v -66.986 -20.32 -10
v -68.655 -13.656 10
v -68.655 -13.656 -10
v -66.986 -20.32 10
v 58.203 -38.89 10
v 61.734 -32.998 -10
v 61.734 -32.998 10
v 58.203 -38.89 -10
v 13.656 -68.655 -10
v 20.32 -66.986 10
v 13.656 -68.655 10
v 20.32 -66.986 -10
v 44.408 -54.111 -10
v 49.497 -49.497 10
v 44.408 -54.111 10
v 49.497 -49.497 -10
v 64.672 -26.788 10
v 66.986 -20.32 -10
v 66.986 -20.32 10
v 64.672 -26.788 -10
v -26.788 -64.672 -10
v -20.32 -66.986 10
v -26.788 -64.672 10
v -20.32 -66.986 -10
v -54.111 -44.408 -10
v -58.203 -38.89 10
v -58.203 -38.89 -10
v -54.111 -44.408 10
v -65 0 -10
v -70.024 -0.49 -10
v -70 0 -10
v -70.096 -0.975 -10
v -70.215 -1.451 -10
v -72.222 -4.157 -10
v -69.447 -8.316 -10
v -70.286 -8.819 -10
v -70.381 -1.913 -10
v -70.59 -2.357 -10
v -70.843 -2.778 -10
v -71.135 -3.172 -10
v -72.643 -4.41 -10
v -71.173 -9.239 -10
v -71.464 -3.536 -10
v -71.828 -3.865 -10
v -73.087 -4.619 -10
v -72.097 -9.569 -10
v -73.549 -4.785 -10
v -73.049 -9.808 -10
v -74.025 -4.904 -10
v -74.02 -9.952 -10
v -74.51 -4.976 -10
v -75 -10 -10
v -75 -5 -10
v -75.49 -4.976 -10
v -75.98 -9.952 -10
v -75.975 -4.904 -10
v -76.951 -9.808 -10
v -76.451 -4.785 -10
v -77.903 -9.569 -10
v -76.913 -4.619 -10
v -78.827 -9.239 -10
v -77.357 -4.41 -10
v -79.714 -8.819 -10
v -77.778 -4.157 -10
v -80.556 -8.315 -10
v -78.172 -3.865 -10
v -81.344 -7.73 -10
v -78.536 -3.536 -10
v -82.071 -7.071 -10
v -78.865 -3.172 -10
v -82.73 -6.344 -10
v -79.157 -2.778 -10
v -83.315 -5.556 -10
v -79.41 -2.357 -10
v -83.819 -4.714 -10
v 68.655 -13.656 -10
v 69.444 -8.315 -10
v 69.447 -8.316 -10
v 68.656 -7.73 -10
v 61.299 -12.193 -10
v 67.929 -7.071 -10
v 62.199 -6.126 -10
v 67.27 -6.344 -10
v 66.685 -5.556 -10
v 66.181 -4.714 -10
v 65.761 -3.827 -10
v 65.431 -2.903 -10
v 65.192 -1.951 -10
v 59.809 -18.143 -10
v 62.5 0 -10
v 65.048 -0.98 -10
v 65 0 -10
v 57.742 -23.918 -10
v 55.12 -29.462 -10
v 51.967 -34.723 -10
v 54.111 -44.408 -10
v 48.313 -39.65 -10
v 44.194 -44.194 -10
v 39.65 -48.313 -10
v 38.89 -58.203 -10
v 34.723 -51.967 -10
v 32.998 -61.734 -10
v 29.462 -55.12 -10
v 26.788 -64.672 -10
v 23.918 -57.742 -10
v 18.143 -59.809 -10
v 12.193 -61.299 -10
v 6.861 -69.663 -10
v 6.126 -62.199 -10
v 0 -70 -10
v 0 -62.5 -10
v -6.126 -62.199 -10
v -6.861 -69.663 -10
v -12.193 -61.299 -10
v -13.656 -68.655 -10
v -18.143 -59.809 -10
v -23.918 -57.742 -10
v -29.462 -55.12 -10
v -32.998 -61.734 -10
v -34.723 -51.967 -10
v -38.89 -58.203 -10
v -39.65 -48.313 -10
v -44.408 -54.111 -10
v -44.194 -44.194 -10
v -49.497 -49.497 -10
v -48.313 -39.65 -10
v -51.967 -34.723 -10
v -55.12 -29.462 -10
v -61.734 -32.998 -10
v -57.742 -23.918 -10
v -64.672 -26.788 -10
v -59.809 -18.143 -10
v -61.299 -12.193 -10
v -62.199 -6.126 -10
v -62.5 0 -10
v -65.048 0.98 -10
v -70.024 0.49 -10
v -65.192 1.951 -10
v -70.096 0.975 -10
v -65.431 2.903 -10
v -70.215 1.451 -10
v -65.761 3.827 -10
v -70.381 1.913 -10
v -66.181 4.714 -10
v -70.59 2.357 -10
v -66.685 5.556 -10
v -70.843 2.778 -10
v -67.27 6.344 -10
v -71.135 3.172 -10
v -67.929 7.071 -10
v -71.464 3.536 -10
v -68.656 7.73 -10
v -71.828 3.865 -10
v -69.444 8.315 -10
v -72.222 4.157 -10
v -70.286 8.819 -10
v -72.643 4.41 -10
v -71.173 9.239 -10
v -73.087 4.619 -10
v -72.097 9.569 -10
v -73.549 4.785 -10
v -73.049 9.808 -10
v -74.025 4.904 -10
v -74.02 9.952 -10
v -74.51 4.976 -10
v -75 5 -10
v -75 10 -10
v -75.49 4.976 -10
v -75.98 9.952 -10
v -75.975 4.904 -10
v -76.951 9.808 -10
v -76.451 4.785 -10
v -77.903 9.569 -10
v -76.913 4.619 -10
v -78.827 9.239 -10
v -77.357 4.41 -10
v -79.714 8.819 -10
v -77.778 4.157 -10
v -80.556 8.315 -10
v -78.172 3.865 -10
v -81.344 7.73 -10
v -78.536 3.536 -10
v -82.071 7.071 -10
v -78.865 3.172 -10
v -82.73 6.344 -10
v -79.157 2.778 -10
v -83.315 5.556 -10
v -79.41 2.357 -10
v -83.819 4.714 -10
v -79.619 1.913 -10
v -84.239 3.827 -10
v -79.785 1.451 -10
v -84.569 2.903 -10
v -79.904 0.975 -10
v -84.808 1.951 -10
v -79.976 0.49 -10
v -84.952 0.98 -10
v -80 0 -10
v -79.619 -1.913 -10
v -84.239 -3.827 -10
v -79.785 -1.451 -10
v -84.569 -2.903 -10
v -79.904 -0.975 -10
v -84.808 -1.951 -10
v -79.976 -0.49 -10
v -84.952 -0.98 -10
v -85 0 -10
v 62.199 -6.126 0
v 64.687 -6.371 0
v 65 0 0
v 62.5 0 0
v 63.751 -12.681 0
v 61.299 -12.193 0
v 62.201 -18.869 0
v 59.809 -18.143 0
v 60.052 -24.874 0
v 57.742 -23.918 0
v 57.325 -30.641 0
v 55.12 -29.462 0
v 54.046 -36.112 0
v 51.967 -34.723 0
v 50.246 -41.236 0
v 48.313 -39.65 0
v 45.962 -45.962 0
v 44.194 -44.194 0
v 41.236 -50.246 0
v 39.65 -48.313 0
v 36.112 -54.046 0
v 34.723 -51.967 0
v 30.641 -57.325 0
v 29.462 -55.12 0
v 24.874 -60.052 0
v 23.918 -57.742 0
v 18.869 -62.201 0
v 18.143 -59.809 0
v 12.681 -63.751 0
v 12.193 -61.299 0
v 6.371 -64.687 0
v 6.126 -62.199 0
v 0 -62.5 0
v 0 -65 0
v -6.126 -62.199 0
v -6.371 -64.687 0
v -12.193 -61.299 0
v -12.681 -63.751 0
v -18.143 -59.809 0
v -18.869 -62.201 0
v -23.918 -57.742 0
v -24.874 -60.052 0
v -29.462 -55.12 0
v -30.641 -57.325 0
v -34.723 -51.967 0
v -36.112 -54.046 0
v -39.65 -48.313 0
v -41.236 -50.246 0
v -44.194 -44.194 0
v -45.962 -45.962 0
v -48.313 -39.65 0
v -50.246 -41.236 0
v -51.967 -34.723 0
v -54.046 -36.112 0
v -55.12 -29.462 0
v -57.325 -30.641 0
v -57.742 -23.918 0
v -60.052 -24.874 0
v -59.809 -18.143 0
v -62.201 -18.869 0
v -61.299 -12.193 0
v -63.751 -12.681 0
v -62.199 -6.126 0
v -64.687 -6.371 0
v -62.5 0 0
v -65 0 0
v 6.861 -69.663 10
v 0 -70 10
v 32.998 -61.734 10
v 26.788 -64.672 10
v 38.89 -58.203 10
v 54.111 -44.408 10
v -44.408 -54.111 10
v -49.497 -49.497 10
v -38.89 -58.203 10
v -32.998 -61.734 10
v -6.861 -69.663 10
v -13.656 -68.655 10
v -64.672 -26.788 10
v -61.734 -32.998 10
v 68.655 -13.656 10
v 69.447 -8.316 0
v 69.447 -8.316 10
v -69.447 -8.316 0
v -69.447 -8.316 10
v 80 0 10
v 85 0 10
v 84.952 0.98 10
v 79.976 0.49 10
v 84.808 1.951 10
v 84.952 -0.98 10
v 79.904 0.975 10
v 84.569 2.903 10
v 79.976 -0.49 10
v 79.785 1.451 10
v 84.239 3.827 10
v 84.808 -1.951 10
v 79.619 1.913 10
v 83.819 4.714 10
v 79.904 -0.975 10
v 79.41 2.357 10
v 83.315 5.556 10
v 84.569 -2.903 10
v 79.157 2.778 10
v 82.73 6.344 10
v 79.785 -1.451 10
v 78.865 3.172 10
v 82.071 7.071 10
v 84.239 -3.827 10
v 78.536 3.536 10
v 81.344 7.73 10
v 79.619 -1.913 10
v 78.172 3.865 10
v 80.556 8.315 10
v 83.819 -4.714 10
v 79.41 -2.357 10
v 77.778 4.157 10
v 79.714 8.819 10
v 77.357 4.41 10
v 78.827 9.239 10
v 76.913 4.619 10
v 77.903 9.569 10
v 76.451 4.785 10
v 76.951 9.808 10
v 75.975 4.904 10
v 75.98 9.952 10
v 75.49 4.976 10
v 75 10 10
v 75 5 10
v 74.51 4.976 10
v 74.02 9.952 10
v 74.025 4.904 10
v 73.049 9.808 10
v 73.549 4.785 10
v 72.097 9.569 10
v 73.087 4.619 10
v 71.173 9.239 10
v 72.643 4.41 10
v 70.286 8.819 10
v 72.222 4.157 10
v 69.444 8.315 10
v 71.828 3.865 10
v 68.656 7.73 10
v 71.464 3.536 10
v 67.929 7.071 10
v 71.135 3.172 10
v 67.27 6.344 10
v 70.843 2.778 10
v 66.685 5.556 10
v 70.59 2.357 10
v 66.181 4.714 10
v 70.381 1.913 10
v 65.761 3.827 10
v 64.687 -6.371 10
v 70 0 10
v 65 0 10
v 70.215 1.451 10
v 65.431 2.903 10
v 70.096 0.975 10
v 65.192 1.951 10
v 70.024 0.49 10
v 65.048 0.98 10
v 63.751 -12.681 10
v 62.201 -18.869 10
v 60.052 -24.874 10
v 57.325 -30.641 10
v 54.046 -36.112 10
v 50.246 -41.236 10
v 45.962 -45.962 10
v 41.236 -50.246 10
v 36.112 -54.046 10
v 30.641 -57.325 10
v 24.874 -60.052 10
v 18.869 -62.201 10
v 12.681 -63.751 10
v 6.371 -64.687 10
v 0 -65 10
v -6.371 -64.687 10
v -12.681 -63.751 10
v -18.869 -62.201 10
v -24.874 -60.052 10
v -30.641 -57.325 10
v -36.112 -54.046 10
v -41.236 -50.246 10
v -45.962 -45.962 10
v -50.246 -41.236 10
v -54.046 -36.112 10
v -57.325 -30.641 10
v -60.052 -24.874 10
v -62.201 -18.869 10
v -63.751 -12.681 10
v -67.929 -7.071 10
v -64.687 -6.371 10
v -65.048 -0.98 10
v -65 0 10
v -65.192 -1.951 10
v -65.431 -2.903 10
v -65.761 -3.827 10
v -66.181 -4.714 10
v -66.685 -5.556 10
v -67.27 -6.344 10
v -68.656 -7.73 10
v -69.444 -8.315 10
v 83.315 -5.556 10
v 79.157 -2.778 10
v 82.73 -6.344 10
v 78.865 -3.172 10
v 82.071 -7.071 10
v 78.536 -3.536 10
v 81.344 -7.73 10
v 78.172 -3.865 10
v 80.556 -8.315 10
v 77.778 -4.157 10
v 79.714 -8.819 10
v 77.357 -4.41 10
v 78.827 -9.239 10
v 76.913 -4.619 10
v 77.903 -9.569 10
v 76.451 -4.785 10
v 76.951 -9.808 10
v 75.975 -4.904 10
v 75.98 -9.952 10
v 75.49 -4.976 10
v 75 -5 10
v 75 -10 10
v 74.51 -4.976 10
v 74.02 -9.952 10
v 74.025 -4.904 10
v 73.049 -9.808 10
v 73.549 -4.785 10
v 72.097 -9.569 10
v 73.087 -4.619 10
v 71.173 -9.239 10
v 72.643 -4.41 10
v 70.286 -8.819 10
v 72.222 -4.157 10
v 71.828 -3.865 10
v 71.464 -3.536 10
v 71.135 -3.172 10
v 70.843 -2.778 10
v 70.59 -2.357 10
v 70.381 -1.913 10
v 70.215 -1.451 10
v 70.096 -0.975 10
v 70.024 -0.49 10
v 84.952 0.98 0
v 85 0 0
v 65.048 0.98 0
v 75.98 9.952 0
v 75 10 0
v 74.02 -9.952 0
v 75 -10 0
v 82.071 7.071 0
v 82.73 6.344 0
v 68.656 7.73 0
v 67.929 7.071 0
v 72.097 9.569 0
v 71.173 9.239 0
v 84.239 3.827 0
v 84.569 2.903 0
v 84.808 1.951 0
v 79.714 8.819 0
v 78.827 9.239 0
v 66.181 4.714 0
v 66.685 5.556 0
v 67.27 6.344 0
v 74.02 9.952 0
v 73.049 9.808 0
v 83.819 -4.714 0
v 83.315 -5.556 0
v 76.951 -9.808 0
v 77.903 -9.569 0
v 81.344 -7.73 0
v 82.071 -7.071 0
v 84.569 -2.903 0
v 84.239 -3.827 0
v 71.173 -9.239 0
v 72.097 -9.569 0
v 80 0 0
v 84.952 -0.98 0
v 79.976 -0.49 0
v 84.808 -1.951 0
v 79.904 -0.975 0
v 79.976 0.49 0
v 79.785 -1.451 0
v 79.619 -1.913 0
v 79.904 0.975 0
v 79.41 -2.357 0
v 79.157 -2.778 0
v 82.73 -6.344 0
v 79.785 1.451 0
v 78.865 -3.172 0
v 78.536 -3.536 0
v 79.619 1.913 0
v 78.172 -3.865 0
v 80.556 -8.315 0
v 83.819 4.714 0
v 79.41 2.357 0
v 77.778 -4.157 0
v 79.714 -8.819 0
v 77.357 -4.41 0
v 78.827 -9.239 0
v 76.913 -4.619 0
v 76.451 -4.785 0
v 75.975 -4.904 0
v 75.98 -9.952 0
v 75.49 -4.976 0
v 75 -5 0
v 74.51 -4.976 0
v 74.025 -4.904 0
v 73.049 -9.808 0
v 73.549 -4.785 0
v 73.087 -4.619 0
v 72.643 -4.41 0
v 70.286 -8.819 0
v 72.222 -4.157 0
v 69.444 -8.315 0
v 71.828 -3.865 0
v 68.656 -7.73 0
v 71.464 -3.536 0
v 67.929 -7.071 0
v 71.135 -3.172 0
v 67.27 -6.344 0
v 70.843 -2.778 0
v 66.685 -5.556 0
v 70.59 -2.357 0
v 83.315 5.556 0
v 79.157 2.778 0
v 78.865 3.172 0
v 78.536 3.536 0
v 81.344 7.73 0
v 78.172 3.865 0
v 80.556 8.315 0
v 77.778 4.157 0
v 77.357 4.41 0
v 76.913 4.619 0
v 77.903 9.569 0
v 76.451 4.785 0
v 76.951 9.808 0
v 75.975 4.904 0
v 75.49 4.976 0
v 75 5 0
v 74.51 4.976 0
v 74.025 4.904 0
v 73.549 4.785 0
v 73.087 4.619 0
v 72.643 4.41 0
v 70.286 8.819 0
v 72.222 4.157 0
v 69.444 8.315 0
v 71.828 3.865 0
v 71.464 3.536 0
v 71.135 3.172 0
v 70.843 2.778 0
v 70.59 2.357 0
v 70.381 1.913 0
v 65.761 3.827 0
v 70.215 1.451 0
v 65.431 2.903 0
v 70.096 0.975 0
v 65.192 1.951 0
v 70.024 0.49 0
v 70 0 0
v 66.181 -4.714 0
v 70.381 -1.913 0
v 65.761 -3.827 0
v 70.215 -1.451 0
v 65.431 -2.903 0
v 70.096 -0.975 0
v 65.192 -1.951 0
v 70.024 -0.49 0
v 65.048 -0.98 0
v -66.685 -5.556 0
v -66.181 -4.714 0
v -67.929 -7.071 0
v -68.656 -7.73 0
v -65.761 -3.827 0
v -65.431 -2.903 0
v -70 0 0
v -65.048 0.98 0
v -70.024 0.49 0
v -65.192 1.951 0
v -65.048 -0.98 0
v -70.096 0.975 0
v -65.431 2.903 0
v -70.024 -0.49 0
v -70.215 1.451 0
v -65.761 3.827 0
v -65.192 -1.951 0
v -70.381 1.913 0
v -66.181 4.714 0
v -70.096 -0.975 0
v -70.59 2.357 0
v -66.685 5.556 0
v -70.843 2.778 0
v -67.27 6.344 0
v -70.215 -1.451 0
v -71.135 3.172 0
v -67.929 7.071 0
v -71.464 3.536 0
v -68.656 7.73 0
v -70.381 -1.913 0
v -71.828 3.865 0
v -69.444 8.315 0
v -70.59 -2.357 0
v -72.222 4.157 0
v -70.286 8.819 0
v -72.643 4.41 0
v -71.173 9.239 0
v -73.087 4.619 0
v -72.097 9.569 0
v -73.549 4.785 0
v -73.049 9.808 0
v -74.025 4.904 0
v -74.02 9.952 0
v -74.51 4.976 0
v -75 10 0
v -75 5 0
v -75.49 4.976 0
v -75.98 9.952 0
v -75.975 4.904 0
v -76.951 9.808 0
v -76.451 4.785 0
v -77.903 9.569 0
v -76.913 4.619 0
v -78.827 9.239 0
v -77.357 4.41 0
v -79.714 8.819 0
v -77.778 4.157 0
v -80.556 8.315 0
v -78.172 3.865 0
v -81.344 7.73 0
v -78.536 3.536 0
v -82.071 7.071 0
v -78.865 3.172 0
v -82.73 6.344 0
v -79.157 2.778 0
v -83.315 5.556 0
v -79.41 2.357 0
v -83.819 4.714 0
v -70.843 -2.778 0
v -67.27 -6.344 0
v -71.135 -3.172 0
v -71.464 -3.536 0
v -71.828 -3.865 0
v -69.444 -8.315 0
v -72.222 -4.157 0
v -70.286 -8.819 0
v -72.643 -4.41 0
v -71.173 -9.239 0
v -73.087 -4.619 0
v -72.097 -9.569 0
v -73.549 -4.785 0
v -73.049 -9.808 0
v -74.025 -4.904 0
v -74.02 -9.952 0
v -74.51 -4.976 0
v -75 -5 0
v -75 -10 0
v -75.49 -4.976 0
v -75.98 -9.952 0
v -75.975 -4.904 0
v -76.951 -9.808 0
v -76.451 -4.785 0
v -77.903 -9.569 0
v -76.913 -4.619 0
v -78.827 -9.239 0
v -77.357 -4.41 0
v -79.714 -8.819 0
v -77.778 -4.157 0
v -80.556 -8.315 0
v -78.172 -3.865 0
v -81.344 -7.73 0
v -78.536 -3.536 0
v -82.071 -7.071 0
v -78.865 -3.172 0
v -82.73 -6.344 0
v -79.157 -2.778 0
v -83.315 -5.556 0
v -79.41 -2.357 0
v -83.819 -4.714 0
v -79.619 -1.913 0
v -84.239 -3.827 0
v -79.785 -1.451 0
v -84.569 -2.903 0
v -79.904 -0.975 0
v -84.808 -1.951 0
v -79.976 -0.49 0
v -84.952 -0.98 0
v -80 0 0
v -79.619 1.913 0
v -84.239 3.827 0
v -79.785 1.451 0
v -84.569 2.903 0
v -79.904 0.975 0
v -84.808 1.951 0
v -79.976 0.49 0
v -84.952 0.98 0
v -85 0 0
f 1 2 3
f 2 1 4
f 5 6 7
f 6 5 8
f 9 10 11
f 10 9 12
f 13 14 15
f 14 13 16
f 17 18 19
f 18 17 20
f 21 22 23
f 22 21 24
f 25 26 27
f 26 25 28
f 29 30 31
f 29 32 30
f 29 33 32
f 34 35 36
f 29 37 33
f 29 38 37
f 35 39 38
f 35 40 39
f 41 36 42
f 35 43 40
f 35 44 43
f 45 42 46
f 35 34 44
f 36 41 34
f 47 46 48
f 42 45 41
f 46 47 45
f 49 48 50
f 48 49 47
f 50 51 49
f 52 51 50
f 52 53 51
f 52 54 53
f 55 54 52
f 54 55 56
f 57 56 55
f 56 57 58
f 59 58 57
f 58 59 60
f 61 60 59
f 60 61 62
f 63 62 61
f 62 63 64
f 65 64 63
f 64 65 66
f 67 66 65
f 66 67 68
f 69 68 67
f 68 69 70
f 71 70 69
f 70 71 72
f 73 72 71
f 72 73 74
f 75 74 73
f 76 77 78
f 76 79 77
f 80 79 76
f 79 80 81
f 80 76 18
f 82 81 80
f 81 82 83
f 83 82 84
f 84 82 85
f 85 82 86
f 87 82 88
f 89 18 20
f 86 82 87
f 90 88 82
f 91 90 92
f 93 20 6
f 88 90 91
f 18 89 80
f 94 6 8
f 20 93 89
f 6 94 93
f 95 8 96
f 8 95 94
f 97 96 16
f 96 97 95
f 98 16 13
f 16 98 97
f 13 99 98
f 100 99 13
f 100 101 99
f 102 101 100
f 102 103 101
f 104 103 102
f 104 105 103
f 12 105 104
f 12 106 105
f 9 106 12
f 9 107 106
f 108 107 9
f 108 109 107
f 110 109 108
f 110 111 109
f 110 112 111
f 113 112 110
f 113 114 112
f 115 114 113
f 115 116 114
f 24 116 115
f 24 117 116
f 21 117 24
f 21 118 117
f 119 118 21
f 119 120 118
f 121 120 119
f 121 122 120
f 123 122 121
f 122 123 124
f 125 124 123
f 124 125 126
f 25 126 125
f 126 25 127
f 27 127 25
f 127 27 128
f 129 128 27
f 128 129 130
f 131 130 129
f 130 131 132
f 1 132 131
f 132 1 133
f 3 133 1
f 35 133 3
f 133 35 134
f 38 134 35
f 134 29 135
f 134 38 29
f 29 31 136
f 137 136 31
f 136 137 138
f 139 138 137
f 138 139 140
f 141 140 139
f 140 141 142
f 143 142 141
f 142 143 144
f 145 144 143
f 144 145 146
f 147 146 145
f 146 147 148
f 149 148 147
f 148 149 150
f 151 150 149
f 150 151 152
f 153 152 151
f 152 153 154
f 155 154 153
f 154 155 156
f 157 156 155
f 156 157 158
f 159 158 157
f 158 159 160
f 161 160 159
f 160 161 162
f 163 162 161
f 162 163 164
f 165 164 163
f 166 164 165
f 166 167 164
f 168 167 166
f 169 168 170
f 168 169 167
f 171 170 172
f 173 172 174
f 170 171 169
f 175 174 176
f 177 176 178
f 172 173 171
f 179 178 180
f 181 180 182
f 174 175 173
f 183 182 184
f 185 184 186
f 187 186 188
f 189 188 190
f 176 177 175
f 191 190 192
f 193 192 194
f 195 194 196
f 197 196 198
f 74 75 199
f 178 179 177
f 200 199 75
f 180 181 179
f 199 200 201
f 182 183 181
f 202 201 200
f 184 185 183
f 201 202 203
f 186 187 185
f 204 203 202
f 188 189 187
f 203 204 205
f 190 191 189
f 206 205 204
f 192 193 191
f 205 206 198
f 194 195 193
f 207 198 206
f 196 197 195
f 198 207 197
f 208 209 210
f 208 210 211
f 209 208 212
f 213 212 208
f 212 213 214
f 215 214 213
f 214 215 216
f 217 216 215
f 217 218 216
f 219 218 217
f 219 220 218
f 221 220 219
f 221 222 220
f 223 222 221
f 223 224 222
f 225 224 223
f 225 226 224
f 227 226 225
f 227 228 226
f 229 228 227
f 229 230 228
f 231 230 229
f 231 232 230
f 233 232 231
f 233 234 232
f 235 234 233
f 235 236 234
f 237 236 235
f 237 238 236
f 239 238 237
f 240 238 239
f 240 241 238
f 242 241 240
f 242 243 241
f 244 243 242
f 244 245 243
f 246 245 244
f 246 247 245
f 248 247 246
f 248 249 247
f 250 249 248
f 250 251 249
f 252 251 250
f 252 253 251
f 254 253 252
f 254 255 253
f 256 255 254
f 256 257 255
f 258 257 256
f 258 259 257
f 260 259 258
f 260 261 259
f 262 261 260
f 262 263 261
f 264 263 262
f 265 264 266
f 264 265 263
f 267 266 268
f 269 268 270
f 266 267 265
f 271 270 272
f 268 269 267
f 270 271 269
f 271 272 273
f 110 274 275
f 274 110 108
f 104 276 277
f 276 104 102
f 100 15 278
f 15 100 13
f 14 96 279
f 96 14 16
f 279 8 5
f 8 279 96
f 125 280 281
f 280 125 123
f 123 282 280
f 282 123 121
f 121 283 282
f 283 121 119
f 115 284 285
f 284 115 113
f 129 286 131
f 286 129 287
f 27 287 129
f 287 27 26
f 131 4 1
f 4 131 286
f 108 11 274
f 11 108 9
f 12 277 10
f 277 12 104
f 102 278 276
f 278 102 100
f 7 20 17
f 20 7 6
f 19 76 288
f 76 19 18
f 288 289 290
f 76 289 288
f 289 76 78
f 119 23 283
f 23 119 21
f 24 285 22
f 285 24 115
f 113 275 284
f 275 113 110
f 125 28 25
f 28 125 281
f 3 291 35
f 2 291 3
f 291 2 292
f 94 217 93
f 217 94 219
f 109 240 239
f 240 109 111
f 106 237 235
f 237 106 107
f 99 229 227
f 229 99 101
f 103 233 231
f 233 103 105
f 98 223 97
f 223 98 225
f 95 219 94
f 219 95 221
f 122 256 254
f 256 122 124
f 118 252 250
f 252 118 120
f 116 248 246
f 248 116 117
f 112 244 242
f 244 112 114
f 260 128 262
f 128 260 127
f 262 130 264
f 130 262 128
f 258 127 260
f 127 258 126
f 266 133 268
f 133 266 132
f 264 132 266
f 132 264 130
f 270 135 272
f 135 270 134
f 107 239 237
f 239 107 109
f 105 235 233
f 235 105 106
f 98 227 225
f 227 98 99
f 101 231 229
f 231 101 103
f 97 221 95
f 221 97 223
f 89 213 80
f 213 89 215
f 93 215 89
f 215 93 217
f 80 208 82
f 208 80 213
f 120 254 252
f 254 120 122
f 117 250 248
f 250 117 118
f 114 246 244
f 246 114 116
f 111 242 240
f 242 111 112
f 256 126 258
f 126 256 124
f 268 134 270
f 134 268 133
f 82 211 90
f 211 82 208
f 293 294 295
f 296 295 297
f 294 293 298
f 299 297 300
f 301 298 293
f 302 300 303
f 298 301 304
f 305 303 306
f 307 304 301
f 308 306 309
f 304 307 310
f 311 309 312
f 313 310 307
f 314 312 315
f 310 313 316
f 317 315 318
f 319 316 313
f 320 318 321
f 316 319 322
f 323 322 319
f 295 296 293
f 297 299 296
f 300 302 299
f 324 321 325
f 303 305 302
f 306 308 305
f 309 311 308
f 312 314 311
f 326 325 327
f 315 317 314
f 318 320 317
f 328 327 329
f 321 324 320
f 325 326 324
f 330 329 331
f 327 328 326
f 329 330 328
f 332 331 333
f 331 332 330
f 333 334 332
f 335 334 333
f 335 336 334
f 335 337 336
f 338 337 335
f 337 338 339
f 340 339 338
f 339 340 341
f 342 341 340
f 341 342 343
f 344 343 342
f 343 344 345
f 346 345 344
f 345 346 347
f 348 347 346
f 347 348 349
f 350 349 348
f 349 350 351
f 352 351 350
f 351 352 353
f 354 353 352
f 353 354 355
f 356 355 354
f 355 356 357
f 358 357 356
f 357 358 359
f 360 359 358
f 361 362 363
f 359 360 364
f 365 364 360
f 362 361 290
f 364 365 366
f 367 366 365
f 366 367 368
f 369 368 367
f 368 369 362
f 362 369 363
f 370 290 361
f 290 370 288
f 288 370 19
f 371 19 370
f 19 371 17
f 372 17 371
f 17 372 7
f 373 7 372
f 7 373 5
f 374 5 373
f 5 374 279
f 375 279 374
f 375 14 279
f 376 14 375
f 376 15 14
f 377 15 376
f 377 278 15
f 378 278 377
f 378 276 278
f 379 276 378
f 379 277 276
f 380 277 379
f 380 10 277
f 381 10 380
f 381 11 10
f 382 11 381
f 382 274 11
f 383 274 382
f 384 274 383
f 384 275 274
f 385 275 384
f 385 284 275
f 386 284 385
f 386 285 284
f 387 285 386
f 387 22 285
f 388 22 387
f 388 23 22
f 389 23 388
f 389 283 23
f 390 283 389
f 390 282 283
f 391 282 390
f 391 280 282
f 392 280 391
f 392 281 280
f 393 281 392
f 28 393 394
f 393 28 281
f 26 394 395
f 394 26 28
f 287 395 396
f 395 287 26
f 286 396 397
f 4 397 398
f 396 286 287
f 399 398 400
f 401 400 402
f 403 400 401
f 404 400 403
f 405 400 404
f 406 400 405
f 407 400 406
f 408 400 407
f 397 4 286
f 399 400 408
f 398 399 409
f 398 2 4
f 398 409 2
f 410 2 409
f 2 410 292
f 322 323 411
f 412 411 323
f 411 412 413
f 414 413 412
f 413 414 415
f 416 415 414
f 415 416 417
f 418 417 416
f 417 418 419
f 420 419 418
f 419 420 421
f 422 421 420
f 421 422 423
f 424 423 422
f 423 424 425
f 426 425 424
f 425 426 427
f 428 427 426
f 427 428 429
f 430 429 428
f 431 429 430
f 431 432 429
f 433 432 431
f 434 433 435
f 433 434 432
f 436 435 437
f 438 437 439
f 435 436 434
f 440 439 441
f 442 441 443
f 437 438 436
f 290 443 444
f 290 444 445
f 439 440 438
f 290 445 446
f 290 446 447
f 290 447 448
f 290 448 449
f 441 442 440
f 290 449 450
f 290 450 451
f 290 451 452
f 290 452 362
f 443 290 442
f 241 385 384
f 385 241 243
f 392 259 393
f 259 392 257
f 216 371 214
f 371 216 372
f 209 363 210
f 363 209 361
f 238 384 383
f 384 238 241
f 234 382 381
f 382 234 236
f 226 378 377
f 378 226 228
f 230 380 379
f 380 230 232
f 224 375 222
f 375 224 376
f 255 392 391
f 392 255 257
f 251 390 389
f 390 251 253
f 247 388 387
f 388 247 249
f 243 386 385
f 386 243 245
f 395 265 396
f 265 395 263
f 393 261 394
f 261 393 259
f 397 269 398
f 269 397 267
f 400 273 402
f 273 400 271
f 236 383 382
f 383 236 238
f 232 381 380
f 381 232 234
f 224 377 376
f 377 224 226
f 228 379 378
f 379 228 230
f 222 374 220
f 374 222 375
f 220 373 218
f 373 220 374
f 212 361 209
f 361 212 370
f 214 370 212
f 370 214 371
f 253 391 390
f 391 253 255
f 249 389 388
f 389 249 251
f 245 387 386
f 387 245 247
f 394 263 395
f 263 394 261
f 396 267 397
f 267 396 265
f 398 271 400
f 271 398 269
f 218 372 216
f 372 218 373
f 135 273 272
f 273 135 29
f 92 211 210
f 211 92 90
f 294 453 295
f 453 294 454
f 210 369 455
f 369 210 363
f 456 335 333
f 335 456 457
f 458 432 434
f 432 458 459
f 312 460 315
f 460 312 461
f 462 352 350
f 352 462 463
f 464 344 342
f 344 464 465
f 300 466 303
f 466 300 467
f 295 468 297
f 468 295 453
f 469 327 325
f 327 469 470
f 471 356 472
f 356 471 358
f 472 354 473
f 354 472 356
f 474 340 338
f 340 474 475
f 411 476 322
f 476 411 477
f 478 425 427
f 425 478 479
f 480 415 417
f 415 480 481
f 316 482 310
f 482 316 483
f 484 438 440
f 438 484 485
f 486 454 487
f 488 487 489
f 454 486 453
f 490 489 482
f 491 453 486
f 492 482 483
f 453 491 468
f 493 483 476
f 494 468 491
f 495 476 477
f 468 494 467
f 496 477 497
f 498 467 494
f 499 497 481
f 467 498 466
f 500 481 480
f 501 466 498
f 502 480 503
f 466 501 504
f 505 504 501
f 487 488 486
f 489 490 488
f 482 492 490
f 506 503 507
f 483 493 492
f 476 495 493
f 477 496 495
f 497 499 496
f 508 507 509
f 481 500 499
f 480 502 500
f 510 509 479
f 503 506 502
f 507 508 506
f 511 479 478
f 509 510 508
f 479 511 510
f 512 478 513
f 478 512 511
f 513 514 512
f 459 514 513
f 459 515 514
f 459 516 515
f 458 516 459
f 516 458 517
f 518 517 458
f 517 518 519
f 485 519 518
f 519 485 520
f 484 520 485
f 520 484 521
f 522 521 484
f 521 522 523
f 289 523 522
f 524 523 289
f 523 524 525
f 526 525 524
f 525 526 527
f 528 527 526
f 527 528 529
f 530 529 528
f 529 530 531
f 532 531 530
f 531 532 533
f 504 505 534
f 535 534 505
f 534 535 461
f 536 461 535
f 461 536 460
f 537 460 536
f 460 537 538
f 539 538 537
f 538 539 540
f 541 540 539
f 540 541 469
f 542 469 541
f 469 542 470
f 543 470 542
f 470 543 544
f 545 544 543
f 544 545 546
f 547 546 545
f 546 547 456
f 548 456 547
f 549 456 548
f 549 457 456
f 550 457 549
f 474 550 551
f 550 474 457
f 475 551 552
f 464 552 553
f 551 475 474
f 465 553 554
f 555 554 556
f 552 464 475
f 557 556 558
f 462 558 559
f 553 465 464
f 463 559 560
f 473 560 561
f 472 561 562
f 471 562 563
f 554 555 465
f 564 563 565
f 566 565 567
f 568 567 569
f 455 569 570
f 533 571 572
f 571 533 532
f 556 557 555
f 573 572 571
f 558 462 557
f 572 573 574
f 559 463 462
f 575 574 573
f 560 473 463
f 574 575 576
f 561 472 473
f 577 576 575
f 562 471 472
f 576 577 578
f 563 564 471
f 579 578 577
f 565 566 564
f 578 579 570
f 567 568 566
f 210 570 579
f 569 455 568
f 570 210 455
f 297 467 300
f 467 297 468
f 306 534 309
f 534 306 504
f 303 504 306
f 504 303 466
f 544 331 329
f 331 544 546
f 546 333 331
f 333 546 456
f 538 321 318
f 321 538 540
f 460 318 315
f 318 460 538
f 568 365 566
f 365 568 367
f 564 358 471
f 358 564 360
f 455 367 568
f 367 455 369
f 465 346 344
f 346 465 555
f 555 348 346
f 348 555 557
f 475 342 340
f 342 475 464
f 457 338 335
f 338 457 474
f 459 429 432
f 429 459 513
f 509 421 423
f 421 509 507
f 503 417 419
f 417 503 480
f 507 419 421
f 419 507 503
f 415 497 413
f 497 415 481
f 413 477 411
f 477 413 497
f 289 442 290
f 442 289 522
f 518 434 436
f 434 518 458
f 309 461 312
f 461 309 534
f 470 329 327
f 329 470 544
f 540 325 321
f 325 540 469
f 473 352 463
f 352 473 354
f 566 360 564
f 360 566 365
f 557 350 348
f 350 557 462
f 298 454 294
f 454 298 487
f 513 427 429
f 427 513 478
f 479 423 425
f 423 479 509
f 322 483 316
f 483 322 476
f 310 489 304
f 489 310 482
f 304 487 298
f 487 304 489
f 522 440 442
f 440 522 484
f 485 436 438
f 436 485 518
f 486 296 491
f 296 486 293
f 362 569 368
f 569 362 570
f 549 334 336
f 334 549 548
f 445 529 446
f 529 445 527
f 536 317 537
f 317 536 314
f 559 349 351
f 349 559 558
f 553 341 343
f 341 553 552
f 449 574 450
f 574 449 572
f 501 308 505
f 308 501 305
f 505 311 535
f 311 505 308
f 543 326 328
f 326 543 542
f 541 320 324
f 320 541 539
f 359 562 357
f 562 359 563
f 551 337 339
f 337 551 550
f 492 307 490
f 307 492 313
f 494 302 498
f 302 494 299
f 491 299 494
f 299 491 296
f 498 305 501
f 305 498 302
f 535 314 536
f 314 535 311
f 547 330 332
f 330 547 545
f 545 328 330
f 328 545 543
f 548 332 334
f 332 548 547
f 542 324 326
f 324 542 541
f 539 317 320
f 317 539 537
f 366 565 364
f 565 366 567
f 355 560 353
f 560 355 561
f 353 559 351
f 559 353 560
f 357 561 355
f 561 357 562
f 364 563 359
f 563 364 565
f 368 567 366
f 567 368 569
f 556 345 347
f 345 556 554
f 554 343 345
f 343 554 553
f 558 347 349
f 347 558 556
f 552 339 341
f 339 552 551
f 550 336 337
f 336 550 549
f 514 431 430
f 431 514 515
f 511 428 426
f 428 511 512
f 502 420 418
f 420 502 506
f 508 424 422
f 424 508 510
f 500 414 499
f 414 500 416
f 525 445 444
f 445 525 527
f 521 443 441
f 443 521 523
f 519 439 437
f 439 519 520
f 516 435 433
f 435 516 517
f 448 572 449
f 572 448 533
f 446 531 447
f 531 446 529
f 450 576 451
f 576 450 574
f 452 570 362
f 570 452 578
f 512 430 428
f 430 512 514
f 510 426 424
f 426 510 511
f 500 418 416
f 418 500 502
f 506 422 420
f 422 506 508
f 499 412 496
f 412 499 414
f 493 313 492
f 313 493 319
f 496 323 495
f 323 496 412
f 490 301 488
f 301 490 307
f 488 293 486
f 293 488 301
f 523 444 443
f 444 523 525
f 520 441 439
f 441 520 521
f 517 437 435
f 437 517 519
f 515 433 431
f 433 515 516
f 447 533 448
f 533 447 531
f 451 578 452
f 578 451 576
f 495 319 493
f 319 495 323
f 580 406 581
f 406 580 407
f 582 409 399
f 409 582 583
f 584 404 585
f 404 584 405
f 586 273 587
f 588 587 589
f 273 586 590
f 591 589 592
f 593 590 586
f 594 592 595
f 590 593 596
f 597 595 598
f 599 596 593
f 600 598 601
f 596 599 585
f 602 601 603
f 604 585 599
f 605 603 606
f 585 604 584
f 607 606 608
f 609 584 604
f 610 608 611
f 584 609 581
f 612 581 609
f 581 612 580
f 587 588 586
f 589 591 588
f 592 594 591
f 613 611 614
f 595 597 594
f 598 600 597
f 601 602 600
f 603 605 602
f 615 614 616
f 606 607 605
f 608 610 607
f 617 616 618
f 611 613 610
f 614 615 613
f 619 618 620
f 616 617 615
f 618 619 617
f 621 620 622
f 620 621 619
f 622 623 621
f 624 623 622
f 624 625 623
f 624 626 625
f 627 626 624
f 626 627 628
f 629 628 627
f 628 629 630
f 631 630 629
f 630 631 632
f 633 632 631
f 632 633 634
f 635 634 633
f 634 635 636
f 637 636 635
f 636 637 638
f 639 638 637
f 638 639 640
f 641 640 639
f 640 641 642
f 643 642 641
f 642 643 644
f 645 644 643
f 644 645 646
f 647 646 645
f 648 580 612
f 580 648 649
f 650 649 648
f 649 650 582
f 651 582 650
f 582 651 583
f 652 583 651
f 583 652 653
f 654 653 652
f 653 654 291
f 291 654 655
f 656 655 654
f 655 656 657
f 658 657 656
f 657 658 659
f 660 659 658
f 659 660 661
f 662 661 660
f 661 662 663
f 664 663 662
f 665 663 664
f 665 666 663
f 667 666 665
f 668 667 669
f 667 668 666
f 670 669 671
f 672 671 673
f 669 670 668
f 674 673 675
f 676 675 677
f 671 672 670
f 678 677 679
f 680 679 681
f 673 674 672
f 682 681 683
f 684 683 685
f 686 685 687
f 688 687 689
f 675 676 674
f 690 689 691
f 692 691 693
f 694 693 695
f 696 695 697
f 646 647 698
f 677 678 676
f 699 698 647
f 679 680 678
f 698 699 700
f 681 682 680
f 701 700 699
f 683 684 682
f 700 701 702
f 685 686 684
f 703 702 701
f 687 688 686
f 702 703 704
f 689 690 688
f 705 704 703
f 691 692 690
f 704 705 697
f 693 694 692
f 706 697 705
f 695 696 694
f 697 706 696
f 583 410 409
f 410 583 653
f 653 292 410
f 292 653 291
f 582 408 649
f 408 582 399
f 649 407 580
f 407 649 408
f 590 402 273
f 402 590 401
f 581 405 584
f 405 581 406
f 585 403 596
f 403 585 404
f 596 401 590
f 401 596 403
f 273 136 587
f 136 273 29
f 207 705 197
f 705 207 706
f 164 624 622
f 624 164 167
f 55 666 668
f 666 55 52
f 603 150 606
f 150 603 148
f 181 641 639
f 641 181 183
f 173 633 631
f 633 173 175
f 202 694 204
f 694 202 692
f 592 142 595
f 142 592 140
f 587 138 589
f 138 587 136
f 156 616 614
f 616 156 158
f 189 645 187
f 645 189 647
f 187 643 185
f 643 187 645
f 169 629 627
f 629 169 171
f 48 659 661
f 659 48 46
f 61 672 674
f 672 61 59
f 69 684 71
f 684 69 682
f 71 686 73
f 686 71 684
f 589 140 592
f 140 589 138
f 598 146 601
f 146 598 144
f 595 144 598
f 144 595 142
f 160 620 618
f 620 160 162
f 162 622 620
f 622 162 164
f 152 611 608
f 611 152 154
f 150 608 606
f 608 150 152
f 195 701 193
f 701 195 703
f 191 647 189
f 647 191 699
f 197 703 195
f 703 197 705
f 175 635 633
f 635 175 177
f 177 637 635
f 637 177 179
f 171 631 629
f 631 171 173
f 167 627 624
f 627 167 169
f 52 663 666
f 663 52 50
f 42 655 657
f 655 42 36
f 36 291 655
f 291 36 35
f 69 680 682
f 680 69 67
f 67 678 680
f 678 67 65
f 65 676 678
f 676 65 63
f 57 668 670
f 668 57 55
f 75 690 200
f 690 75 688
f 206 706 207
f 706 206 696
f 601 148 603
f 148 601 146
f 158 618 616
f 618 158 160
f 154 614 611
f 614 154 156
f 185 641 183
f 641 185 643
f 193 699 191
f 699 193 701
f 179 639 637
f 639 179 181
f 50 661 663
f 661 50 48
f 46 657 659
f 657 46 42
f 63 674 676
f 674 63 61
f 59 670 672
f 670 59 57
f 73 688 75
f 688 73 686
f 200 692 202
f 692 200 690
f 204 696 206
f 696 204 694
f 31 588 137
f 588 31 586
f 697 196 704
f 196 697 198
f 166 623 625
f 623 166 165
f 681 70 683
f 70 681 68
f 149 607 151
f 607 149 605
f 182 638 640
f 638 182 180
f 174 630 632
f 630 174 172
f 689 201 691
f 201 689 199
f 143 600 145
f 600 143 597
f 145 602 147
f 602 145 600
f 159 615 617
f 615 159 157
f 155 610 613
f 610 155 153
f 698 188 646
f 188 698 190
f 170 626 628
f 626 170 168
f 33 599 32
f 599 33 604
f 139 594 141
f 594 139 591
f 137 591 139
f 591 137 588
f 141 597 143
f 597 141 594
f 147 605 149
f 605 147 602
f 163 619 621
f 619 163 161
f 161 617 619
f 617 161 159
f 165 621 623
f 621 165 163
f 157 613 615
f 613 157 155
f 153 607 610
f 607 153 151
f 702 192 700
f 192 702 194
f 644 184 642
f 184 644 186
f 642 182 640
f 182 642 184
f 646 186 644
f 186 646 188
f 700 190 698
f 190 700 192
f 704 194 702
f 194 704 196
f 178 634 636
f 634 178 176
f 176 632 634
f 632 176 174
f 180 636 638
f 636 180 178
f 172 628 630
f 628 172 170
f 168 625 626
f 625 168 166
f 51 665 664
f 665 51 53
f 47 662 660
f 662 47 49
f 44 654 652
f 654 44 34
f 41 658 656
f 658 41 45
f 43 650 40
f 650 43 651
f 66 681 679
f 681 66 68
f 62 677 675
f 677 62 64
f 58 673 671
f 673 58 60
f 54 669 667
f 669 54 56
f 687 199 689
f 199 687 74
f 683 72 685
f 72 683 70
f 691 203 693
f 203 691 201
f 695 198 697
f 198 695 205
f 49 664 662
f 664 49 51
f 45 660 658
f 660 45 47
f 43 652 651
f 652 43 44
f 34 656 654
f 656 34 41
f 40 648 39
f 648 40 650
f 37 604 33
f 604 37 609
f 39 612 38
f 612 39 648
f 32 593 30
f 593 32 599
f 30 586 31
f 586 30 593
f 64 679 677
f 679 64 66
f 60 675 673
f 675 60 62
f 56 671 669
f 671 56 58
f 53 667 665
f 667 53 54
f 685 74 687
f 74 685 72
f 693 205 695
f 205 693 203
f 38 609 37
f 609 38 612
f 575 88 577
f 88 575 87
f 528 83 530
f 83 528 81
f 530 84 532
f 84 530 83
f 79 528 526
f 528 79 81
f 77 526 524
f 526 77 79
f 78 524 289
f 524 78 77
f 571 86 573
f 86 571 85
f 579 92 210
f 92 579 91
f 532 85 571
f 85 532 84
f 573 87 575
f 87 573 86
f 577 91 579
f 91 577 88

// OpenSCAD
// Generated by SolidPython 1.1.1 on 2022-02-24 00:51:33
$fn = 64;


difference() {
	union() {
		difference() {
			union() {
				difference() {
					union() {
						translate(v = [0, 0, -10.0000000000]) {
							difference() {
								cylinder(h = 10.0000000000, r = 70.0000000000);
								translate(v = [0, 0, -0.0300000000]) {
									cylinder(h = 10.0600000000, r = 62.5000000000);
								}
							}
						}
						difference() {
							cylinder(h = 10.0000000000, r = 70.0000000000);
							translate(v = [0, 0, -0.0300000000]) {
								cylinder(h = 10.0600000000, r = 65.0000000000);
							}
						}
					}
					translate(v = [-70.0000000000, 0, -10.0300000000]) {
						cube(size = [140.0000000000, 140.0000000000, 20.0600000000]);
					}
				}
				translate(v = [75.0000000000, 0, 0]) {
					difference() {
						cylinder(h = 10.0000000000, r = 10.0000000000);
						translate(v = [0, 0, -0.0300000000]) {
							cylinder(h = 10.0600000000, r = 5.0000000000);
						}
					}
				}
			}
			translate(v = [-75.0000000000, 0, 0]) {
				difference() {
					cylinder(h = 10.0000000000, r = 10.0000000000);
					translate(v = [0, 0, -0.0300000000]) {
						cylinder(h = 10.0600000000, r = 5.0000000000);
					}
				}
			}
		}
		translate(v = [-75.0000000000, 0, -10.0000000000]) {
			difference() {
				cylinder(h = 10.0000000000, r = 10.0000000000);
				translate(v = [0, 0, -0.0300000000]) {
					cylinder(h = 10.0600000000, r = 5.0000000000);
				}
			}
		}
	}
	translate(v = [75.0000000000, 0, -10.0000000000]) {
		difference() {
			cylinder(h = 10.0000000000, r = 10.0000000000);
			translate(v = [0, 0, -0.0300000000]) {
				cylinder(h = 10.0600000000, r = 5.0000000000);
			}
		}
	}
}
/***********************************************
*********      SolidPython code:      **********
************************************************
 
from solid import *
from solid.utils import *
import math

cm = 10
z = 0.03
fn = 64


def render(model, filename, fn=fn):
    scad_render_to_file(model, filename, file_header='$fn = %d;' % fn)


tube_radius = 13 * cm / 2
fan_outlet_radius = 12.5 * cm / 2
joint_radius = 0.5 * cm

margin = 0.1 * cm
padding_r = 0.5 * cm
total_height = 2 * cm

fan_outlet = cylinder(
    tube_radius + padding_r, total_height / 2)
fan_outlet_hole = cylinder(fan_outlet_radius, total_height / 2 + z*2)
fan_outlet_hole = translate([0, 0, - z])(fan_outlet_hole)

tube = cylinder(
    tube_radius + padding_r, total_height / 2)
tube_hole = cylinder(tube_radius, total_height / 2 + z*2)
tube_hole = translate([0, 0, - z])(tube_hole)


fan_outlet_attachment = fan_outlet - fan_outlet_hole
fan_outlet_attachment = translate(
    [0, 0, -total_height / 2])(fan_outlet_attachment)

tube_attachment = tube - tube_hole

combined = fan_outlet_attachment + tube_attachment

half = combined - translate([-tube_radius - padding_r, 0, - total_height / 2 - z])(
    cube([2*(tube_radius + padding_r), 2 *
          (tube_radius + padding_r), total_height + z*2])
)

joint_attachment_hole = cylinder(joint_radius, total_height / 2 + 2*z)
joint_attachment_hole = translate([0, 0, -z])(joint_attachment_hole)
joint_attachment = cylinder(
    joint_radius + padding_r, total_height / 2) - joint_attachment_hole

joint_attachment_top = translate(
    [tube_radius + padding_r + joint_radius, 0, 0])(joint_attachment)
joint_attachment_top_hole = translate(
    [-(tube_radius + padding_r + joint_radius), 0, 0])(joint_attachment)

joint_attachment_bottom = translate(
    [-(tube_radius + padding_r + joint_radius), 0, -total_height / 2])(joint_attachment)
joint_attachment_bottom_hole = translate(
    [tube_radius + padding_r + joint_radius, 0, -total_height / 2])(joint_attachment)


nail_head = cylinder(joint_radius + padding_r, padding_r / 2 + 2*z)
nail_head = translate([0, 0, total_height])(nail_head)
nail = cylinder(joint_radius - margin, total_height + 2*z) + nail_head

render(
    half
    + joint_attachment_top
    - joint_attachment_top_hole
    + joint_attachment_bottom
    - joint_attachment_bottom_hole,
    "tube_attachment_half.scad"
)
render(nail, "nail.scad")
 
 
************************************************/
